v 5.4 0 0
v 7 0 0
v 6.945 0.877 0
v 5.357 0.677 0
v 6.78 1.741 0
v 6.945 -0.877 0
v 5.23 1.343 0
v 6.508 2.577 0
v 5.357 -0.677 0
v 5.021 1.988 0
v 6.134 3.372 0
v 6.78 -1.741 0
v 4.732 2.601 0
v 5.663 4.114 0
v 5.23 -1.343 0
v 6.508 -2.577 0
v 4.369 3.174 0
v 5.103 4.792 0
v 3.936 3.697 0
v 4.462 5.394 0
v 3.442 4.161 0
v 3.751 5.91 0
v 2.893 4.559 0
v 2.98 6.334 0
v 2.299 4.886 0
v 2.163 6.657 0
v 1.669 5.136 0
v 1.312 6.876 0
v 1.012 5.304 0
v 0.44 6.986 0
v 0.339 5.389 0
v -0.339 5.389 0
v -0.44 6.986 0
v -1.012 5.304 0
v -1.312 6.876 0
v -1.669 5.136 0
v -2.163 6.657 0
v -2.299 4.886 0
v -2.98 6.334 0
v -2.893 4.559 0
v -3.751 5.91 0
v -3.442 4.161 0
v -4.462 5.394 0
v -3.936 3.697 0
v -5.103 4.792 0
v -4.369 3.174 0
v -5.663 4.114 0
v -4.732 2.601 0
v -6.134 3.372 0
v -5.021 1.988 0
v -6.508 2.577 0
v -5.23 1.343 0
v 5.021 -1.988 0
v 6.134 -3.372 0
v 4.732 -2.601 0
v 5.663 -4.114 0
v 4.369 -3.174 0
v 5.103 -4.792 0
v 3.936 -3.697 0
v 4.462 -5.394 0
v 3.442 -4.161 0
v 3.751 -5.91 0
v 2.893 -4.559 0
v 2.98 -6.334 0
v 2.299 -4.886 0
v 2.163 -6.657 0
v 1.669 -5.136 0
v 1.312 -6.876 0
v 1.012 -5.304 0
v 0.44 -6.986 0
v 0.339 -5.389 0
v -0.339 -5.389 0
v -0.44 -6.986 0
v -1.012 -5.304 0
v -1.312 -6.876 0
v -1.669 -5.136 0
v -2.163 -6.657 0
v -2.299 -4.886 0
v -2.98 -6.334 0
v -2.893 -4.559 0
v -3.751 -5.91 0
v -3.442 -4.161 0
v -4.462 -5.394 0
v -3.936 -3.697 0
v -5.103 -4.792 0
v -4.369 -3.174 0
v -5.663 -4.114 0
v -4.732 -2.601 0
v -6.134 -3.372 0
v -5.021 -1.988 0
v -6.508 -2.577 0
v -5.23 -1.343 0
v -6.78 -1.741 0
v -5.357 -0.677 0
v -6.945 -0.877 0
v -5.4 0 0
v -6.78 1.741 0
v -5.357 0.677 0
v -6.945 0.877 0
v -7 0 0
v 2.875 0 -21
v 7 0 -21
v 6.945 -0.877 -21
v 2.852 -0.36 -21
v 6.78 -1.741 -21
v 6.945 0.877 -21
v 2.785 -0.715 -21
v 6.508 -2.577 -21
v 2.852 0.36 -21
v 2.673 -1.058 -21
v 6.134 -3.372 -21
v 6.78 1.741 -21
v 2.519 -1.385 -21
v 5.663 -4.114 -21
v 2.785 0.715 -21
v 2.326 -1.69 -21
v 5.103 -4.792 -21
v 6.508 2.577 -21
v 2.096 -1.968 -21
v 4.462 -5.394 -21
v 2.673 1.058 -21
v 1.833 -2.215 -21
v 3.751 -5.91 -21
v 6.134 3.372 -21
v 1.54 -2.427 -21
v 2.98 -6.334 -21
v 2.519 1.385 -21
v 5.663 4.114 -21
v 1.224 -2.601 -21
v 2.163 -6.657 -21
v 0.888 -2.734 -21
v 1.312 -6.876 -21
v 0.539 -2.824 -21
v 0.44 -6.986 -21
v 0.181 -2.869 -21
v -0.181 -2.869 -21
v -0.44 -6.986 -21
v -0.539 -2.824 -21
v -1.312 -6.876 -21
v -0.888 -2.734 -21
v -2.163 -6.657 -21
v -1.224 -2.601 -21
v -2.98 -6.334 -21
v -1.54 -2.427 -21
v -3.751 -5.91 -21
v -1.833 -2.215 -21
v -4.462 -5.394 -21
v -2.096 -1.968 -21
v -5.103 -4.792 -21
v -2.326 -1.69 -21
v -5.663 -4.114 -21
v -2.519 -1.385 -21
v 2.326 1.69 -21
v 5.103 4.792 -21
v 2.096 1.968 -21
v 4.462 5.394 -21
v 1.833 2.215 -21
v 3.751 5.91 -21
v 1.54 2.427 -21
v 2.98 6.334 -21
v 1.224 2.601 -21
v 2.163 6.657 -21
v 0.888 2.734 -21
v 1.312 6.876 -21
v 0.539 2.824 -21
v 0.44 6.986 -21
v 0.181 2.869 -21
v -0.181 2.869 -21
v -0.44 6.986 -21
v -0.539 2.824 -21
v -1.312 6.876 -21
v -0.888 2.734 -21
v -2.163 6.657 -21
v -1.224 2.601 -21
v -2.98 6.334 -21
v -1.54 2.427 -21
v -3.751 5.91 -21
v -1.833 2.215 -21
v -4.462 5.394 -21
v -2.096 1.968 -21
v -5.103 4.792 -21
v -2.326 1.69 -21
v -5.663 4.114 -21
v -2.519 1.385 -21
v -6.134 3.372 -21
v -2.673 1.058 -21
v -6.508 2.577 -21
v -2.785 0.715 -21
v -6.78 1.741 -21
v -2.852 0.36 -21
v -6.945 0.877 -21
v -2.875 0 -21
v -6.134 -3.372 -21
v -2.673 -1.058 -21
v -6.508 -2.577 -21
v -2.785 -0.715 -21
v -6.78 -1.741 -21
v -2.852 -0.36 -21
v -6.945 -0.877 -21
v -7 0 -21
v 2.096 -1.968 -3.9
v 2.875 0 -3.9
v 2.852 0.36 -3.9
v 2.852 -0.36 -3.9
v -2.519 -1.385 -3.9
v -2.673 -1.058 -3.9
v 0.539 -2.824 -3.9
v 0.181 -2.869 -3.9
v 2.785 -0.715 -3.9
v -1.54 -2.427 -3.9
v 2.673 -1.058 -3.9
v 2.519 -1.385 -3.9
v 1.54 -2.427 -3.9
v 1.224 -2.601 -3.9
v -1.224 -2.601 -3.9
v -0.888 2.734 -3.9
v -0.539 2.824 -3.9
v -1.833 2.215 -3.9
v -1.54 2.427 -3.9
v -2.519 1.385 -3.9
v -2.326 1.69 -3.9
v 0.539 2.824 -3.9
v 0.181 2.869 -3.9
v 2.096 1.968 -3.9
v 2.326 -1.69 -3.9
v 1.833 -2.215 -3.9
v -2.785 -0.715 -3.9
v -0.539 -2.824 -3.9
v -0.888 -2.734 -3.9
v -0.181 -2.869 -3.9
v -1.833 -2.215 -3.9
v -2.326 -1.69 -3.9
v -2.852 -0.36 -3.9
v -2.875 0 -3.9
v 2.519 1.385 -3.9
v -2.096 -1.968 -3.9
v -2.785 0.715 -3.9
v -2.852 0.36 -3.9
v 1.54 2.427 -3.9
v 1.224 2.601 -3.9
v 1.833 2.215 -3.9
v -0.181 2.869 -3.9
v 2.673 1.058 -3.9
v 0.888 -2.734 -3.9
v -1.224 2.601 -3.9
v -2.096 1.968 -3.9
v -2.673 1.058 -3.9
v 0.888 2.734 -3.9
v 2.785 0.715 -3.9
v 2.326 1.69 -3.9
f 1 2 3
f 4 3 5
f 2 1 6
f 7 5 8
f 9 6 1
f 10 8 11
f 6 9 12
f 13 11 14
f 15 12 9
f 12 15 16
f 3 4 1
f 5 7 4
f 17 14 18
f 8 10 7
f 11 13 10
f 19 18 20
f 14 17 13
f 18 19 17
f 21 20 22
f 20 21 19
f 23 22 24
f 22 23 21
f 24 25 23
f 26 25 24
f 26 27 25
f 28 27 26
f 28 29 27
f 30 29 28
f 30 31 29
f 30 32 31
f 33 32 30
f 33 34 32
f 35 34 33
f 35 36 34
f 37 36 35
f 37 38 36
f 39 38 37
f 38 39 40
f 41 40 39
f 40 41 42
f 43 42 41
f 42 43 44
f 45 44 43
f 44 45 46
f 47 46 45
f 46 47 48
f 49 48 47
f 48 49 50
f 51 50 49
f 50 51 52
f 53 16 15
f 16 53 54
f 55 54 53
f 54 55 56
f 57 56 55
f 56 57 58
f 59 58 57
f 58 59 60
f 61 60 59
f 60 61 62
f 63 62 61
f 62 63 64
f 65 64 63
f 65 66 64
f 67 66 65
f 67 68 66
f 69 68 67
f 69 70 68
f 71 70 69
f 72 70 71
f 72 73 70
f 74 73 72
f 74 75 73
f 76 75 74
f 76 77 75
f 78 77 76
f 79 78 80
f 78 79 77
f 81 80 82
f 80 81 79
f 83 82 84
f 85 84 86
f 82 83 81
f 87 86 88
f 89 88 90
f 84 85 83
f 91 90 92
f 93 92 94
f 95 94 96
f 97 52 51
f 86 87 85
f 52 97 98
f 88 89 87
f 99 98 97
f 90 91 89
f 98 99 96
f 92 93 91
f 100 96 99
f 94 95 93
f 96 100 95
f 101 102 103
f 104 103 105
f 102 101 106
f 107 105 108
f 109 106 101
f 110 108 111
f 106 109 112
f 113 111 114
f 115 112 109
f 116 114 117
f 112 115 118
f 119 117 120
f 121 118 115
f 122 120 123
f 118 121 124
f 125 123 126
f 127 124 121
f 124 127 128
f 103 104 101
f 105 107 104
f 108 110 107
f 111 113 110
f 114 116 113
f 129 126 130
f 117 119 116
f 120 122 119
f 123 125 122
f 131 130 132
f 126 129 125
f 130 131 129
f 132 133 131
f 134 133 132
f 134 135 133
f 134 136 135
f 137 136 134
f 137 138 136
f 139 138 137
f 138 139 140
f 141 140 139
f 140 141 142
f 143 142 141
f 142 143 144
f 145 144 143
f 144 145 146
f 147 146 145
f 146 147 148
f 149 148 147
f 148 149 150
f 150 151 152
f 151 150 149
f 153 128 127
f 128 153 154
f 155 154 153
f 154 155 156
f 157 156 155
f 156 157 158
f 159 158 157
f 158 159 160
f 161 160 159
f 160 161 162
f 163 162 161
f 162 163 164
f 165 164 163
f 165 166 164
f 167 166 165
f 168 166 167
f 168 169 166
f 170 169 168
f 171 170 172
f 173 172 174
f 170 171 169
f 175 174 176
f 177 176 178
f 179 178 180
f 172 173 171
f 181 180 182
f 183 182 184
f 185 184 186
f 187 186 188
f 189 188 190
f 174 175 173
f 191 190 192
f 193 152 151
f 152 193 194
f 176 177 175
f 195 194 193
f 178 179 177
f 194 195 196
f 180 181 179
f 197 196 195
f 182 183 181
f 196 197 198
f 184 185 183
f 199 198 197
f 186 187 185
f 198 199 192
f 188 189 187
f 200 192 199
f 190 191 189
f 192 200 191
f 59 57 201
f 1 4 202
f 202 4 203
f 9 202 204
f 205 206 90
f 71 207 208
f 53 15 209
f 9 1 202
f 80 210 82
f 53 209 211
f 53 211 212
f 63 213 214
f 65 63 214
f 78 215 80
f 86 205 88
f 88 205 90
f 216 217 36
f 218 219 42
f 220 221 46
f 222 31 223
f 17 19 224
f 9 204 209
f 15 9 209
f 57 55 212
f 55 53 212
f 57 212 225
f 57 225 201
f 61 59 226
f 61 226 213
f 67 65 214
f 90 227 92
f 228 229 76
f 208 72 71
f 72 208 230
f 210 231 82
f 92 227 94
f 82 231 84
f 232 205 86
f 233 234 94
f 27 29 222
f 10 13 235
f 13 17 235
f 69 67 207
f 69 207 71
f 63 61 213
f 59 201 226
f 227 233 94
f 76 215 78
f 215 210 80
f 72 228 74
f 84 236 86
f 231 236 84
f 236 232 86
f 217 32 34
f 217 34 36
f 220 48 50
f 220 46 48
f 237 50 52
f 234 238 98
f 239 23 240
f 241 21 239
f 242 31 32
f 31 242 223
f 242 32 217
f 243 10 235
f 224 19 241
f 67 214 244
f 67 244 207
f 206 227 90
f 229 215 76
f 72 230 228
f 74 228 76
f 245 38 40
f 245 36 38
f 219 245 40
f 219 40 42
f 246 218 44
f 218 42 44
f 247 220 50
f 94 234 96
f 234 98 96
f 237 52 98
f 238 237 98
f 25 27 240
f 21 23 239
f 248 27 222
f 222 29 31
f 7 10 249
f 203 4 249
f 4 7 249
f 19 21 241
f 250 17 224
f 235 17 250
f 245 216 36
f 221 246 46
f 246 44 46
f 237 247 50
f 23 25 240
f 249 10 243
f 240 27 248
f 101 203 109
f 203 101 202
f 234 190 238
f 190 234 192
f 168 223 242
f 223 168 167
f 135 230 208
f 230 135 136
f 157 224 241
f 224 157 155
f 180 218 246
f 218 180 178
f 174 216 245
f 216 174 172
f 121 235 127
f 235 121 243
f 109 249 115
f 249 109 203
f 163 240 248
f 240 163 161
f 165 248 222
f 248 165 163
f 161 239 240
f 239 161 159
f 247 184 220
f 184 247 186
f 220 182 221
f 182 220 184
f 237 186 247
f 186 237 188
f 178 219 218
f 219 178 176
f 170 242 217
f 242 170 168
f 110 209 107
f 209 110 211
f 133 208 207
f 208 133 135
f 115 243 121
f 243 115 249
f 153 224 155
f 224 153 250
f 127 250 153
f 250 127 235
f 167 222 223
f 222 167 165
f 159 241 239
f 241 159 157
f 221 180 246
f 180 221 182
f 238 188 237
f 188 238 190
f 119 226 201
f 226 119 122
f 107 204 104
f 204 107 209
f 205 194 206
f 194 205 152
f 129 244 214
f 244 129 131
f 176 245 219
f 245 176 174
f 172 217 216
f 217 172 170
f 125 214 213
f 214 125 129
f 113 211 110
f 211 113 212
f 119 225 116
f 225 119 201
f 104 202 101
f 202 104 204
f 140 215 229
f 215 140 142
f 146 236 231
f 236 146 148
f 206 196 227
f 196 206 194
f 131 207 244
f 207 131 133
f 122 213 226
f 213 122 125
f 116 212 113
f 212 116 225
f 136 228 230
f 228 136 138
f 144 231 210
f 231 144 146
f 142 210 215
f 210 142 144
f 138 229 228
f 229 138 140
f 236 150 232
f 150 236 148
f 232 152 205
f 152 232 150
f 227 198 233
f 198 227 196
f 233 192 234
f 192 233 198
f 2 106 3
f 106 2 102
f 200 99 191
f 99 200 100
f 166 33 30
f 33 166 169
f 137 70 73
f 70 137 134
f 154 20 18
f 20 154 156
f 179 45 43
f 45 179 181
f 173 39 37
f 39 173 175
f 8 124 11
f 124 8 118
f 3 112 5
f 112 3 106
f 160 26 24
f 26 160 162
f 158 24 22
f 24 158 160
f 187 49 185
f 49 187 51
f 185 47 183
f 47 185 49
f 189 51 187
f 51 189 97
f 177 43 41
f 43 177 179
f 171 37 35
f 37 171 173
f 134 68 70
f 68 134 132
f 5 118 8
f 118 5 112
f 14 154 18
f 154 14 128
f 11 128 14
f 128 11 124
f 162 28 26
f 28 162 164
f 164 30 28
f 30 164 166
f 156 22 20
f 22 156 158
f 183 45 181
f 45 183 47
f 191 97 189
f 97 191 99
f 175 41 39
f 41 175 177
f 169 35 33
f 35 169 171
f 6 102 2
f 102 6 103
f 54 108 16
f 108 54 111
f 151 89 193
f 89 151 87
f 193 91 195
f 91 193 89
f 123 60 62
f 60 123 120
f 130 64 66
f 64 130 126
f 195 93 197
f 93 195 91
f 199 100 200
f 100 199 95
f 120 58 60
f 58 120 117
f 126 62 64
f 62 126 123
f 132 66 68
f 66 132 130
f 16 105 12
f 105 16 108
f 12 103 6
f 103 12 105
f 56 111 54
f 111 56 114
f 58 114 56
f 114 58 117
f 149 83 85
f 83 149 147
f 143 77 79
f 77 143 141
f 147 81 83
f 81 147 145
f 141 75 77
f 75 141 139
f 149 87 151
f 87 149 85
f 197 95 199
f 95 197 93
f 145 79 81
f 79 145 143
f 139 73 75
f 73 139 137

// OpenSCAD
$fn = 50;


difference() {
	union() {
		translate(v = [0, 0, -21.0000000000]) {
			cylinder(h = 21, r = 7.0000000000);
		}
		cylinder(h = 0, r = 16.0000000000);
	}
	union() {
		translate(v = [0, 0, 0]) {
			rotate(a = [0, 0, 0]) {
				difference() {
					union() {
						#translate(v = [0, 0, -21.0000000000]) {
							cylinder(h = 21, r = 2.6000000000);
						}
						#translate(v = [0, 0, -3.9000000000]) {
							cylinder(h = 3.9000000000, r = 7.0000000000, r1 = 2.8750000000, r2 = 5.4000000000);
						}
						#translate(v = [0, 0, -21.0000000000]) {
							cylinder(h = 21, r = 2.8750000000);
						}
						#translate(v = [0, 0, -21.0000000000]) {
							cylinder(h = 21, r = 2.6000000000);
						}
					}
					union();
				}
			}
		}
	}
}
